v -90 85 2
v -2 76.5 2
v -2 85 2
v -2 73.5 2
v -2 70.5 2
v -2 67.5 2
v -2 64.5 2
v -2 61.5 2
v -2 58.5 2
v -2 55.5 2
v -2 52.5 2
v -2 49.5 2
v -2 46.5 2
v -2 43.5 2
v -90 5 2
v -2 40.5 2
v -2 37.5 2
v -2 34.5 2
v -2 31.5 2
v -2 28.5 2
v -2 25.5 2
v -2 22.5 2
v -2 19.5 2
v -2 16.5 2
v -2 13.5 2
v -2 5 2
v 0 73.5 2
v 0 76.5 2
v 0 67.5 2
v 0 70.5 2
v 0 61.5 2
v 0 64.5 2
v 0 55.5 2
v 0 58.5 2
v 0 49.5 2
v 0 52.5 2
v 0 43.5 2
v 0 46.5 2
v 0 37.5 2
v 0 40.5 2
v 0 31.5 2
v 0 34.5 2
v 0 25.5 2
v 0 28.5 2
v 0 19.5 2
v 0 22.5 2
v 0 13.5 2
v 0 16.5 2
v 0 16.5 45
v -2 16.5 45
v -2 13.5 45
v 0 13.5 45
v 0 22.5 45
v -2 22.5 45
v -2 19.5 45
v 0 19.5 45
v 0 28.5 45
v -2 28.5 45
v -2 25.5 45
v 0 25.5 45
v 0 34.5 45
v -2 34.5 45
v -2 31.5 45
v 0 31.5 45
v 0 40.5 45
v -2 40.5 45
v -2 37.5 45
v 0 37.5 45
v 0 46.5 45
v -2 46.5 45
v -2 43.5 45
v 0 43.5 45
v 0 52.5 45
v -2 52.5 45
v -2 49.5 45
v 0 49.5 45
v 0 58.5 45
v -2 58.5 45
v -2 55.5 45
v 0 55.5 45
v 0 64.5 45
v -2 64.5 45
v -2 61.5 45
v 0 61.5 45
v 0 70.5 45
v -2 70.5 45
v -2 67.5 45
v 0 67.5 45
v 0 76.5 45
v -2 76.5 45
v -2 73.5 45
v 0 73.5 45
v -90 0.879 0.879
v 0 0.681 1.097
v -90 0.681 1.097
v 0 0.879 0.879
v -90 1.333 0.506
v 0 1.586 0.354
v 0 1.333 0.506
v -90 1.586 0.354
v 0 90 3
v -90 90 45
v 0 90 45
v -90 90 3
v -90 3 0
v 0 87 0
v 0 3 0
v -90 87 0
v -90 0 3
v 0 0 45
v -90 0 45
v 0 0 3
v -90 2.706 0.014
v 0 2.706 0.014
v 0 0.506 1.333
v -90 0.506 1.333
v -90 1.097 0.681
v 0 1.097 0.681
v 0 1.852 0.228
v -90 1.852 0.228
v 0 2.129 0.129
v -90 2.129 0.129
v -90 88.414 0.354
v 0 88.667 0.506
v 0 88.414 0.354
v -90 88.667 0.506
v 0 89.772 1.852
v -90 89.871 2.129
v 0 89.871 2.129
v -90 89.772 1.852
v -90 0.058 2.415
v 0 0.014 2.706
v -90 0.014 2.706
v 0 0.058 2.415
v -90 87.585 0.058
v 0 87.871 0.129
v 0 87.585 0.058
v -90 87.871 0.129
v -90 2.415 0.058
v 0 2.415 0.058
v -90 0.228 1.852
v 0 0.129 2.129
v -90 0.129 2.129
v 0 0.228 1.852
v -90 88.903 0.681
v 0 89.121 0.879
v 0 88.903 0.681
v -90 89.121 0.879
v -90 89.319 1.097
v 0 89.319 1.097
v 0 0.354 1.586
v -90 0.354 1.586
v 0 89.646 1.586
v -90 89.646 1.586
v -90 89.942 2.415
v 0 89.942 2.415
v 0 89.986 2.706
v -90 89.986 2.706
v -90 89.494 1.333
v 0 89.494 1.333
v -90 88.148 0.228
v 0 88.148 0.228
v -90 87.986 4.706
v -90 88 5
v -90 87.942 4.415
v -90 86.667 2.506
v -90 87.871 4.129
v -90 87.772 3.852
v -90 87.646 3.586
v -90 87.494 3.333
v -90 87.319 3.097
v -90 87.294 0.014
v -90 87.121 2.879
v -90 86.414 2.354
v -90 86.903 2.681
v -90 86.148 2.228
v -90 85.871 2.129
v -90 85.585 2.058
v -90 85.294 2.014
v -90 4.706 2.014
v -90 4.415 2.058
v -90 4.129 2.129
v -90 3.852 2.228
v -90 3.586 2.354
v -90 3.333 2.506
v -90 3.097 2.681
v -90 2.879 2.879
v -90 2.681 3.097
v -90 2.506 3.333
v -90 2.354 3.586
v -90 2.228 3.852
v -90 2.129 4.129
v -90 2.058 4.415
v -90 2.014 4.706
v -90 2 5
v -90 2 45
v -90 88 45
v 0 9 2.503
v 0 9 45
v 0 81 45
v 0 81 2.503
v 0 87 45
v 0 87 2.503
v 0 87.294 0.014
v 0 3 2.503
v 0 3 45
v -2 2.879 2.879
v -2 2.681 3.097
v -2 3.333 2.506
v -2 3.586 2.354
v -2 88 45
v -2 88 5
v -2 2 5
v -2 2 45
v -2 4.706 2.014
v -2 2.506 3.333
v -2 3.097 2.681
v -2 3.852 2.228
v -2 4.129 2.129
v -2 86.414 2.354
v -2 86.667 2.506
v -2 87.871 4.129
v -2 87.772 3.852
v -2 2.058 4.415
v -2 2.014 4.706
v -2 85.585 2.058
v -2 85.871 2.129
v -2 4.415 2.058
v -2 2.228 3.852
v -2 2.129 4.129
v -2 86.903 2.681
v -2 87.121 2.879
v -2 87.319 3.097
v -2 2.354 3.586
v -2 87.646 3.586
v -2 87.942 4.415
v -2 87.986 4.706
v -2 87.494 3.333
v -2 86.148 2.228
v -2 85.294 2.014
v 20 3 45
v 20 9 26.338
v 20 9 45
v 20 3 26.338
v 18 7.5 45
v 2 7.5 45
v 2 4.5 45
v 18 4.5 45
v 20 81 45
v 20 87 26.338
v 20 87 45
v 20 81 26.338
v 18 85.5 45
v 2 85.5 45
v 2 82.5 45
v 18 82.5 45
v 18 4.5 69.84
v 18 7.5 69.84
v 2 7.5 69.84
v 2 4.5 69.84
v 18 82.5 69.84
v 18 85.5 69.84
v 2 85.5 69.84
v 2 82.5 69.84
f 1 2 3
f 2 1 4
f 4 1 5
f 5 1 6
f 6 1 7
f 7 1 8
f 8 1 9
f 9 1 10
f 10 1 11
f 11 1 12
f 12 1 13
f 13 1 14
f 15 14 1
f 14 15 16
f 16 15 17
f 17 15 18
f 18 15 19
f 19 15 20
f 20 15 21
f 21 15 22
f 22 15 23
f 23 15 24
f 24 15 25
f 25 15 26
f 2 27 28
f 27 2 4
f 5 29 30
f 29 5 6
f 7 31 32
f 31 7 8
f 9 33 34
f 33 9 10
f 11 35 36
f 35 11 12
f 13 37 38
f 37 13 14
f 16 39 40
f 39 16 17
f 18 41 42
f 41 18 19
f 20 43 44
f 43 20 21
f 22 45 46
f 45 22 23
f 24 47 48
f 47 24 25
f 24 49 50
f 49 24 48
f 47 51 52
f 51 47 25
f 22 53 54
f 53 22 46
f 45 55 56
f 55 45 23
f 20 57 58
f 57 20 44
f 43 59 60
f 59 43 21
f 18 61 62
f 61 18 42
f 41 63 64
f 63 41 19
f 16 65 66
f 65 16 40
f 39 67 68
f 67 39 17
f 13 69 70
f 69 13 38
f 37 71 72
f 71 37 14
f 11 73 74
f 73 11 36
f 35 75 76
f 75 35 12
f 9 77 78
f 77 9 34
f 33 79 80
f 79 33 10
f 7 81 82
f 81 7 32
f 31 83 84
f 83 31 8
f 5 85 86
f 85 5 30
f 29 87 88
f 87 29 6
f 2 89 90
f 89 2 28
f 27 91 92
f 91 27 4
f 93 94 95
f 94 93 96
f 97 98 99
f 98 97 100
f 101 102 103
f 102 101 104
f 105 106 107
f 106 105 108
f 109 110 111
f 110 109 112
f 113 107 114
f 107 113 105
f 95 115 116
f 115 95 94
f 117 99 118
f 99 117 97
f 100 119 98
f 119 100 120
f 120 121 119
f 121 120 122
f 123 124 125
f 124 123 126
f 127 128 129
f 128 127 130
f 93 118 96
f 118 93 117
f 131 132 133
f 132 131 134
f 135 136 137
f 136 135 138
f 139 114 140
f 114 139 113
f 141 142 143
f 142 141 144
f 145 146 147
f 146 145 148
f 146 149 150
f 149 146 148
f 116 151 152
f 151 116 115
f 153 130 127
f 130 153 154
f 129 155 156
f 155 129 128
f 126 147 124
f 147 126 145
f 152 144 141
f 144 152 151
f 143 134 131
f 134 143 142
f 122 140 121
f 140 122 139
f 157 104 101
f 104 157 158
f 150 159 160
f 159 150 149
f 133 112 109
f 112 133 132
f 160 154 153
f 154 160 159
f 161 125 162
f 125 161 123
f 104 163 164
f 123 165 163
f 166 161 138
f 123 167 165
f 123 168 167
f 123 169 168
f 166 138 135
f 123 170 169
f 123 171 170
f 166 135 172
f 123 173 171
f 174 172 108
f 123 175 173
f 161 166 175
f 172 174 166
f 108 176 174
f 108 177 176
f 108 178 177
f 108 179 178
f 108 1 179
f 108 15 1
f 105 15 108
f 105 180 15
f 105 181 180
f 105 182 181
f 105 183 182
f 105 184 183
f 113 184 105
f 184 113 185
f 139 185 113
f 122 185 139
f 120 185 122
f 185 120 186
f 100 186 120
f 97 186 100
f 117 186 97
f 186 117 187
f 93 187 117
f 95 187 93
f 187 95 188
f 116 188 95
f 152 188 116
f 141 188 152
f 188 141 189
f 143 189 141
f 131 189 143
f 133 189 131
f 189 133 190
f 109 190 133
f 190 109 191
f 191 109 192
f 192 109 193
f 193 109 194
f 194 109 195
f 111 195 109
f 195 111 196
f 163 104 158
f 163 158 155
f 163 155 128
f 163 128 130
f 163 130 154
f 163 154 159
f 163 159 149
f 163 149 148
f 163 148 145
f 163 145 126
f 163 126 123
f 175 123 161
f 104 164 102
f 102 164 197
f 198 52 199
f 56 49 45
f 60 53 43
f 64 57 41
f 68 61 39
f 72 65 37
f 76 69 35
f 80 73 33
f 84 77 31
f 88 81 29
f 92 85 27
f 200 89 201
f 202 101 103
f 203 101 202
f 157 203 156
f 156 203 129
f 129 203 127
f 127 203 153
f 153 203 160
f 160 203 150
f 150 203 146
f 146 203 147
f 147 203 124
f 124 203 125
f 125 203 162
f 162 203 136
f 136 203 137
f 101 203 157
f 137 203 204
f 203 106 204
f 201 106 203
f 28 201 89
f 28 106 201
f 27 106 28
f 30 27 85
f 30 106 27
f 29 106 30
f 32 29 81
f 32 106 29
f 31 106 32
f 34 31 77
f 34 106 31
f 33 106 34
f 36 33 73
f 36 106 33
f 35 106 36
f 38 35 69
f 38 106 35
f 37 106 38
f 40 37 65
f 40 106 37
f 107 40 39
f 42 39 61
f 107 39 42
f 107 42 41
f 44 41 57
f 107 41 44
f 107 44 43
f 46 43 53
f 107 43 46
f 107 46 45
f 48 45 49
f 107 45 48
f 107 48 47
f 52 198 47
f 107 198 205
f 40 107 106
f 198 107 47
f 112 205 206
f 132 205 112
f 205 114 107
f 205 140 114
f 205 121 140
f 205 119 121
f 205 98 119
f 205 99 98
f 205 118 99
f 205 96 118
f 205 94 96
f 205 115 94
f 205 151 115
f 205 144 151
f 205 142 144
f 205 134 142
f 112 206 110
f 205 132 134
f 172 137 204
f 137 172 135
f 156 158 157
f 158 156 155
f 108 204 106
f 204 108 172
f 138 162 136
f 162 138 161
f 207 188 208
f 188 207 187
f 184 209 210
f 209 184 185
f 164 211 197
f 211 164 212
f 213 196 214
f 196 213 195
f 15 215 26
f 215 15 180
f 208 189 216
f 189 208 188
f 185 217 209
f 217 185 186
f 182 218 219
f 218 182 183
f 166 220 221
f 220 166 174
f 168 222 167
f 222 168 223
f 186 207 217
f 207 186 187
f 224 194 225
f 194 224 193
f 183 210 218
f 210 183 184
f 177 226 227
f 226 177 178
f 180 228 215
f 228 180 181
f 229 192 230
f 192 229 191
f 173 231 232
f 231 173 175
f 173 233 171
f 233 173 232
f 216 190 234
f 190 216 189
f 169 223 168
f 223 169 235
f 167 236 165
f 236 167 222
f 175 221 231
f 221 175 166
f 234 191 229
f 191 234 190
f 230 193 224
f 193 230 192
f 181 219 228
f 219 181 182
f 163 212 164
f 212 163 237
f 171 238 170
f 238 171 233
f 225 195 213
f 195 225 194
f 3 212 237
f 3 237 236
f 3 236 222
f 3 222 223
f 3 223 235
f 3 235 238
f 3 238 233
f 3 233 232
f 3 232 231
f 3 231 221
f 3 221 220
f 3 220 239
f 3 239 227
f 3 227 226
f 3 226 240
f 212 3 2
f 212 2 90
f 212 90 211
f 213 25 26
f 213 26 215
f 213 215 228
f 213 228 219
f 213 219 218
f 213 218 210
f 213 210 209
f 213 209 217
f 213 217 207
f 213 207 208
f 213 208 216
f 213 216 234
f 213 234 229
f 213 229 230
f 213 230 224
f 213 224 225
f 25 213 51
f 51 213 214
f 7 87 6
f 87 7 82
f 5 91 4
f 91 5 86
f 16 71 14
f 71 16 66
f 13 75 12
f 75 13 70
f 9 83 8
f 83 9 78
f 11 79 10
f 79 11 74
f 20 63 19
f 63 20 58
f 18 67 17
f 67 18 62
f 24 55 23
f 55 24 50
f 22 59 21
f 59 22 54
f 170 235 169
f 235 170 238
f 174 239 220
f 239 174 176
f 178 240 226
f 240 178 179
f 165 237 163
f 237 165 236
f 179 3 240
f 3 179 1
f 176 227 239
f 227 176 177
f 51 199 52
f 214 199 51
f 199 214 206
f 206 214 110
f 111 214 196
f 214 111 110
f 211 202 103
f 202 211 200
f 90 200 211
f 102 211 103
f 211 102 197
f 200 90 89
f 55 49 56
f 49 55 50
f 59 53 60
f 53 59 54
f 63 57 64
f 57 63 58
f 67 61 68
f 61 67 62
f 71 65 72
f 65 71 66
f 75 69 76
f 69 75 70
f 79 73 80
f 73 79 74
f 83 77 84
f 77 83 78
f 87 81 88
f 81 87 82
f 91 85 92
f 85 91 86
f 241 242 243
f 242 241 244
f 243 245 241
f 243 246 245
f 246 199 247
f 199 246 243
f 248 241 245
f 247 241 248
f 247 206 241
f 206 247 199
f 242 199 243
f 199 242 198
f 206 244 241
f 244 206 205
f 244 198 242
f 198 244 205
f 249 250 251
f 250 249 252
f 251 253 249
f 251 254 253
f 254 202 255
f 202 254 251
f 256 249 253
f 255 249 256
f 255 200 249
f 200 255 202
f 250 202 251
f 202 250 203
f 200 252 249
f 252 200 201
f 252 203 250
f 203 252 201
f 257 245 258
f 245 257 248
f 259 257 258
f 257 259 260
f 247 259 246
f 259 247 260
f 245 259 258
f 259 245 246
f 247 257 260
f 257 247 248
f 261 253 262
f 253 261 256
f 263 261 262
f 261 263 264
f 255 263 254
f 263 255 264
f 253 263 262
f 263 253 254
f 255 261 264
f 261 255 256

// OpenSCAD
// file: mixin.scad
$fn = 64;

POT_SIZE = 90;
WALL_WIDTH = 2;
CORNER_RADIUS = 3;

LEG_WIDTH = 6;
LEG_LENGTH = 20;
PIN_DEPTH = 20;
PIN_LENGTH = PIN_DEPTH - WALL_WIDTH * 2;

PIN_WIDTH = 3;
PIN_HEIGHT = POT_SIZE / 2 + POT_SIZE / 4;
FIT_GAP = 0.34;
OVERCUT = 0.1;

FIRST_LEG_Y = CORNER_RADIUS;
SECOND_LEG_Y = POT_SIZE - CORNER_RADIUS - LEG_WIDTH;

SLOT_WIDTH = 3;
SLOT_STEP = 6;

module rounded_box(size = [10, 10, 5], corner_radius = CORNER_RADIUS) {
  translate([size[0] / 2, size[1] / 2, 0]) {
    linear_extrude(height=size[2]) {
      minkowski() {
        square([size[0] - 2 * corner_radius, size[1] - 2 * corner_radius], center=true);
        circle(r=corner_radius);
      }
    }
  }
}

module bottom_slots() {
  between_legs_span = POT_SIZE - 2 * (CORNER_RADIUS + LEG_WIDTH);
  slot_count_half = floor((between_legs_span / 2 - SLOT_WIDTH / 2) / SLOT_STEP);
  for (slot_index = [-slot_count_half:slot_count_half])
    translate([WALL_WIDTH, POT_SIZE / 2 + slot_index * SLOT_STEP - SLOT_WIDTH / 2, -OVERCUT])
      cube([POT_SIZE, SLOT_WIDTH, WALL_WIDTH + OVERCUT * 2]);
}

module pot_shell() {
  rotate([0, -90, 0]) difference() {
    rounded_box([POT_SIZE, POT_SIZE, POT_SIZE]);
    translate([WALL_WIDTH, WALL_WIDTH, WALL_WIDTH])
      rounded_box([
        POT_SIZE - WALL_WIDTH * 2,
        POT_SIZE - WALL_WIDTH * 2,
        POT_SIZE + WALL_WIDTH * 2,
      ]);
    translate([POT_SIZE / 2, -WALL_WIDTH, -WALL_WIDTH])
      cube([POT_SIZE, POT_SIZE + WALL_WIDTH * 2, POT_SIZE * 2]);

    bottom_slots();
  }
}

module angled_cut(leg_y) {
  translate([-0.1 - WALL_WIDTH, leg_y - 0.1, 0]) rotate([0, 40, 0])
    cube([LEG_LENGTH + 0.2, LEG_WIDTH + 0.2, POT_SIZE / 2]);
}

module leg(leg_y) {
  leg_height = POT_SIZE / 2;
  difference() {
    translate([0, leg_y, WALL_WIDTH + FIT_GAP])
      cube([LEG_LENGTH, LEG_WIDTH, leg_height - WALL_WIDTH - FIT_GAP]);

    angled_cut(leg_y);
  }
}

module legs() {
  leg(FIRST_LEG_Y);
  leg(SECOND_LEG_Y);
}

module leg_pin(leg_y, pin_width, pin_length) {
  difference() {
    translate([(PIN_DEPTH - pin_length) / 2, leg_y + (LEG_WIDTH - pin_width) / 2, WALL_WIDTH + FIT_GAP])
      cube([pin_length, pin_width, PIN_HEIGHT]);

    angled_cut(leg_y);
  }
}

module leg_pins(pin_width, pin_length) {
  leg_pin(FIRST_LEG_Y, pin_width, pin_length);
  leg_pin(SECOND_LEG_Y, pin_width, pin_length);
}

module leg_with_socket(leg_y) {
  difference() {
    leg(leg_y);
    translate([0, 0, WALL_WIDTH])
      leg_pin(leg_y, PIN_WIDTH + FIT_GAP, PIN_LENGTH + FIT_GAP);
  }
}

module leg_with_pin(leg_y) {
  leg(leg_y);
  leg_pin(leg_y, PIN_WIDTH, PIN_LENGTH);
}
// main file
include <mixin.scad>;

module inner_shell_a() {
  pot_shell();
  legs();
  leg_pins(PIN_WIDTH, PIN_LENGTH);
}

inner_shell_a();
